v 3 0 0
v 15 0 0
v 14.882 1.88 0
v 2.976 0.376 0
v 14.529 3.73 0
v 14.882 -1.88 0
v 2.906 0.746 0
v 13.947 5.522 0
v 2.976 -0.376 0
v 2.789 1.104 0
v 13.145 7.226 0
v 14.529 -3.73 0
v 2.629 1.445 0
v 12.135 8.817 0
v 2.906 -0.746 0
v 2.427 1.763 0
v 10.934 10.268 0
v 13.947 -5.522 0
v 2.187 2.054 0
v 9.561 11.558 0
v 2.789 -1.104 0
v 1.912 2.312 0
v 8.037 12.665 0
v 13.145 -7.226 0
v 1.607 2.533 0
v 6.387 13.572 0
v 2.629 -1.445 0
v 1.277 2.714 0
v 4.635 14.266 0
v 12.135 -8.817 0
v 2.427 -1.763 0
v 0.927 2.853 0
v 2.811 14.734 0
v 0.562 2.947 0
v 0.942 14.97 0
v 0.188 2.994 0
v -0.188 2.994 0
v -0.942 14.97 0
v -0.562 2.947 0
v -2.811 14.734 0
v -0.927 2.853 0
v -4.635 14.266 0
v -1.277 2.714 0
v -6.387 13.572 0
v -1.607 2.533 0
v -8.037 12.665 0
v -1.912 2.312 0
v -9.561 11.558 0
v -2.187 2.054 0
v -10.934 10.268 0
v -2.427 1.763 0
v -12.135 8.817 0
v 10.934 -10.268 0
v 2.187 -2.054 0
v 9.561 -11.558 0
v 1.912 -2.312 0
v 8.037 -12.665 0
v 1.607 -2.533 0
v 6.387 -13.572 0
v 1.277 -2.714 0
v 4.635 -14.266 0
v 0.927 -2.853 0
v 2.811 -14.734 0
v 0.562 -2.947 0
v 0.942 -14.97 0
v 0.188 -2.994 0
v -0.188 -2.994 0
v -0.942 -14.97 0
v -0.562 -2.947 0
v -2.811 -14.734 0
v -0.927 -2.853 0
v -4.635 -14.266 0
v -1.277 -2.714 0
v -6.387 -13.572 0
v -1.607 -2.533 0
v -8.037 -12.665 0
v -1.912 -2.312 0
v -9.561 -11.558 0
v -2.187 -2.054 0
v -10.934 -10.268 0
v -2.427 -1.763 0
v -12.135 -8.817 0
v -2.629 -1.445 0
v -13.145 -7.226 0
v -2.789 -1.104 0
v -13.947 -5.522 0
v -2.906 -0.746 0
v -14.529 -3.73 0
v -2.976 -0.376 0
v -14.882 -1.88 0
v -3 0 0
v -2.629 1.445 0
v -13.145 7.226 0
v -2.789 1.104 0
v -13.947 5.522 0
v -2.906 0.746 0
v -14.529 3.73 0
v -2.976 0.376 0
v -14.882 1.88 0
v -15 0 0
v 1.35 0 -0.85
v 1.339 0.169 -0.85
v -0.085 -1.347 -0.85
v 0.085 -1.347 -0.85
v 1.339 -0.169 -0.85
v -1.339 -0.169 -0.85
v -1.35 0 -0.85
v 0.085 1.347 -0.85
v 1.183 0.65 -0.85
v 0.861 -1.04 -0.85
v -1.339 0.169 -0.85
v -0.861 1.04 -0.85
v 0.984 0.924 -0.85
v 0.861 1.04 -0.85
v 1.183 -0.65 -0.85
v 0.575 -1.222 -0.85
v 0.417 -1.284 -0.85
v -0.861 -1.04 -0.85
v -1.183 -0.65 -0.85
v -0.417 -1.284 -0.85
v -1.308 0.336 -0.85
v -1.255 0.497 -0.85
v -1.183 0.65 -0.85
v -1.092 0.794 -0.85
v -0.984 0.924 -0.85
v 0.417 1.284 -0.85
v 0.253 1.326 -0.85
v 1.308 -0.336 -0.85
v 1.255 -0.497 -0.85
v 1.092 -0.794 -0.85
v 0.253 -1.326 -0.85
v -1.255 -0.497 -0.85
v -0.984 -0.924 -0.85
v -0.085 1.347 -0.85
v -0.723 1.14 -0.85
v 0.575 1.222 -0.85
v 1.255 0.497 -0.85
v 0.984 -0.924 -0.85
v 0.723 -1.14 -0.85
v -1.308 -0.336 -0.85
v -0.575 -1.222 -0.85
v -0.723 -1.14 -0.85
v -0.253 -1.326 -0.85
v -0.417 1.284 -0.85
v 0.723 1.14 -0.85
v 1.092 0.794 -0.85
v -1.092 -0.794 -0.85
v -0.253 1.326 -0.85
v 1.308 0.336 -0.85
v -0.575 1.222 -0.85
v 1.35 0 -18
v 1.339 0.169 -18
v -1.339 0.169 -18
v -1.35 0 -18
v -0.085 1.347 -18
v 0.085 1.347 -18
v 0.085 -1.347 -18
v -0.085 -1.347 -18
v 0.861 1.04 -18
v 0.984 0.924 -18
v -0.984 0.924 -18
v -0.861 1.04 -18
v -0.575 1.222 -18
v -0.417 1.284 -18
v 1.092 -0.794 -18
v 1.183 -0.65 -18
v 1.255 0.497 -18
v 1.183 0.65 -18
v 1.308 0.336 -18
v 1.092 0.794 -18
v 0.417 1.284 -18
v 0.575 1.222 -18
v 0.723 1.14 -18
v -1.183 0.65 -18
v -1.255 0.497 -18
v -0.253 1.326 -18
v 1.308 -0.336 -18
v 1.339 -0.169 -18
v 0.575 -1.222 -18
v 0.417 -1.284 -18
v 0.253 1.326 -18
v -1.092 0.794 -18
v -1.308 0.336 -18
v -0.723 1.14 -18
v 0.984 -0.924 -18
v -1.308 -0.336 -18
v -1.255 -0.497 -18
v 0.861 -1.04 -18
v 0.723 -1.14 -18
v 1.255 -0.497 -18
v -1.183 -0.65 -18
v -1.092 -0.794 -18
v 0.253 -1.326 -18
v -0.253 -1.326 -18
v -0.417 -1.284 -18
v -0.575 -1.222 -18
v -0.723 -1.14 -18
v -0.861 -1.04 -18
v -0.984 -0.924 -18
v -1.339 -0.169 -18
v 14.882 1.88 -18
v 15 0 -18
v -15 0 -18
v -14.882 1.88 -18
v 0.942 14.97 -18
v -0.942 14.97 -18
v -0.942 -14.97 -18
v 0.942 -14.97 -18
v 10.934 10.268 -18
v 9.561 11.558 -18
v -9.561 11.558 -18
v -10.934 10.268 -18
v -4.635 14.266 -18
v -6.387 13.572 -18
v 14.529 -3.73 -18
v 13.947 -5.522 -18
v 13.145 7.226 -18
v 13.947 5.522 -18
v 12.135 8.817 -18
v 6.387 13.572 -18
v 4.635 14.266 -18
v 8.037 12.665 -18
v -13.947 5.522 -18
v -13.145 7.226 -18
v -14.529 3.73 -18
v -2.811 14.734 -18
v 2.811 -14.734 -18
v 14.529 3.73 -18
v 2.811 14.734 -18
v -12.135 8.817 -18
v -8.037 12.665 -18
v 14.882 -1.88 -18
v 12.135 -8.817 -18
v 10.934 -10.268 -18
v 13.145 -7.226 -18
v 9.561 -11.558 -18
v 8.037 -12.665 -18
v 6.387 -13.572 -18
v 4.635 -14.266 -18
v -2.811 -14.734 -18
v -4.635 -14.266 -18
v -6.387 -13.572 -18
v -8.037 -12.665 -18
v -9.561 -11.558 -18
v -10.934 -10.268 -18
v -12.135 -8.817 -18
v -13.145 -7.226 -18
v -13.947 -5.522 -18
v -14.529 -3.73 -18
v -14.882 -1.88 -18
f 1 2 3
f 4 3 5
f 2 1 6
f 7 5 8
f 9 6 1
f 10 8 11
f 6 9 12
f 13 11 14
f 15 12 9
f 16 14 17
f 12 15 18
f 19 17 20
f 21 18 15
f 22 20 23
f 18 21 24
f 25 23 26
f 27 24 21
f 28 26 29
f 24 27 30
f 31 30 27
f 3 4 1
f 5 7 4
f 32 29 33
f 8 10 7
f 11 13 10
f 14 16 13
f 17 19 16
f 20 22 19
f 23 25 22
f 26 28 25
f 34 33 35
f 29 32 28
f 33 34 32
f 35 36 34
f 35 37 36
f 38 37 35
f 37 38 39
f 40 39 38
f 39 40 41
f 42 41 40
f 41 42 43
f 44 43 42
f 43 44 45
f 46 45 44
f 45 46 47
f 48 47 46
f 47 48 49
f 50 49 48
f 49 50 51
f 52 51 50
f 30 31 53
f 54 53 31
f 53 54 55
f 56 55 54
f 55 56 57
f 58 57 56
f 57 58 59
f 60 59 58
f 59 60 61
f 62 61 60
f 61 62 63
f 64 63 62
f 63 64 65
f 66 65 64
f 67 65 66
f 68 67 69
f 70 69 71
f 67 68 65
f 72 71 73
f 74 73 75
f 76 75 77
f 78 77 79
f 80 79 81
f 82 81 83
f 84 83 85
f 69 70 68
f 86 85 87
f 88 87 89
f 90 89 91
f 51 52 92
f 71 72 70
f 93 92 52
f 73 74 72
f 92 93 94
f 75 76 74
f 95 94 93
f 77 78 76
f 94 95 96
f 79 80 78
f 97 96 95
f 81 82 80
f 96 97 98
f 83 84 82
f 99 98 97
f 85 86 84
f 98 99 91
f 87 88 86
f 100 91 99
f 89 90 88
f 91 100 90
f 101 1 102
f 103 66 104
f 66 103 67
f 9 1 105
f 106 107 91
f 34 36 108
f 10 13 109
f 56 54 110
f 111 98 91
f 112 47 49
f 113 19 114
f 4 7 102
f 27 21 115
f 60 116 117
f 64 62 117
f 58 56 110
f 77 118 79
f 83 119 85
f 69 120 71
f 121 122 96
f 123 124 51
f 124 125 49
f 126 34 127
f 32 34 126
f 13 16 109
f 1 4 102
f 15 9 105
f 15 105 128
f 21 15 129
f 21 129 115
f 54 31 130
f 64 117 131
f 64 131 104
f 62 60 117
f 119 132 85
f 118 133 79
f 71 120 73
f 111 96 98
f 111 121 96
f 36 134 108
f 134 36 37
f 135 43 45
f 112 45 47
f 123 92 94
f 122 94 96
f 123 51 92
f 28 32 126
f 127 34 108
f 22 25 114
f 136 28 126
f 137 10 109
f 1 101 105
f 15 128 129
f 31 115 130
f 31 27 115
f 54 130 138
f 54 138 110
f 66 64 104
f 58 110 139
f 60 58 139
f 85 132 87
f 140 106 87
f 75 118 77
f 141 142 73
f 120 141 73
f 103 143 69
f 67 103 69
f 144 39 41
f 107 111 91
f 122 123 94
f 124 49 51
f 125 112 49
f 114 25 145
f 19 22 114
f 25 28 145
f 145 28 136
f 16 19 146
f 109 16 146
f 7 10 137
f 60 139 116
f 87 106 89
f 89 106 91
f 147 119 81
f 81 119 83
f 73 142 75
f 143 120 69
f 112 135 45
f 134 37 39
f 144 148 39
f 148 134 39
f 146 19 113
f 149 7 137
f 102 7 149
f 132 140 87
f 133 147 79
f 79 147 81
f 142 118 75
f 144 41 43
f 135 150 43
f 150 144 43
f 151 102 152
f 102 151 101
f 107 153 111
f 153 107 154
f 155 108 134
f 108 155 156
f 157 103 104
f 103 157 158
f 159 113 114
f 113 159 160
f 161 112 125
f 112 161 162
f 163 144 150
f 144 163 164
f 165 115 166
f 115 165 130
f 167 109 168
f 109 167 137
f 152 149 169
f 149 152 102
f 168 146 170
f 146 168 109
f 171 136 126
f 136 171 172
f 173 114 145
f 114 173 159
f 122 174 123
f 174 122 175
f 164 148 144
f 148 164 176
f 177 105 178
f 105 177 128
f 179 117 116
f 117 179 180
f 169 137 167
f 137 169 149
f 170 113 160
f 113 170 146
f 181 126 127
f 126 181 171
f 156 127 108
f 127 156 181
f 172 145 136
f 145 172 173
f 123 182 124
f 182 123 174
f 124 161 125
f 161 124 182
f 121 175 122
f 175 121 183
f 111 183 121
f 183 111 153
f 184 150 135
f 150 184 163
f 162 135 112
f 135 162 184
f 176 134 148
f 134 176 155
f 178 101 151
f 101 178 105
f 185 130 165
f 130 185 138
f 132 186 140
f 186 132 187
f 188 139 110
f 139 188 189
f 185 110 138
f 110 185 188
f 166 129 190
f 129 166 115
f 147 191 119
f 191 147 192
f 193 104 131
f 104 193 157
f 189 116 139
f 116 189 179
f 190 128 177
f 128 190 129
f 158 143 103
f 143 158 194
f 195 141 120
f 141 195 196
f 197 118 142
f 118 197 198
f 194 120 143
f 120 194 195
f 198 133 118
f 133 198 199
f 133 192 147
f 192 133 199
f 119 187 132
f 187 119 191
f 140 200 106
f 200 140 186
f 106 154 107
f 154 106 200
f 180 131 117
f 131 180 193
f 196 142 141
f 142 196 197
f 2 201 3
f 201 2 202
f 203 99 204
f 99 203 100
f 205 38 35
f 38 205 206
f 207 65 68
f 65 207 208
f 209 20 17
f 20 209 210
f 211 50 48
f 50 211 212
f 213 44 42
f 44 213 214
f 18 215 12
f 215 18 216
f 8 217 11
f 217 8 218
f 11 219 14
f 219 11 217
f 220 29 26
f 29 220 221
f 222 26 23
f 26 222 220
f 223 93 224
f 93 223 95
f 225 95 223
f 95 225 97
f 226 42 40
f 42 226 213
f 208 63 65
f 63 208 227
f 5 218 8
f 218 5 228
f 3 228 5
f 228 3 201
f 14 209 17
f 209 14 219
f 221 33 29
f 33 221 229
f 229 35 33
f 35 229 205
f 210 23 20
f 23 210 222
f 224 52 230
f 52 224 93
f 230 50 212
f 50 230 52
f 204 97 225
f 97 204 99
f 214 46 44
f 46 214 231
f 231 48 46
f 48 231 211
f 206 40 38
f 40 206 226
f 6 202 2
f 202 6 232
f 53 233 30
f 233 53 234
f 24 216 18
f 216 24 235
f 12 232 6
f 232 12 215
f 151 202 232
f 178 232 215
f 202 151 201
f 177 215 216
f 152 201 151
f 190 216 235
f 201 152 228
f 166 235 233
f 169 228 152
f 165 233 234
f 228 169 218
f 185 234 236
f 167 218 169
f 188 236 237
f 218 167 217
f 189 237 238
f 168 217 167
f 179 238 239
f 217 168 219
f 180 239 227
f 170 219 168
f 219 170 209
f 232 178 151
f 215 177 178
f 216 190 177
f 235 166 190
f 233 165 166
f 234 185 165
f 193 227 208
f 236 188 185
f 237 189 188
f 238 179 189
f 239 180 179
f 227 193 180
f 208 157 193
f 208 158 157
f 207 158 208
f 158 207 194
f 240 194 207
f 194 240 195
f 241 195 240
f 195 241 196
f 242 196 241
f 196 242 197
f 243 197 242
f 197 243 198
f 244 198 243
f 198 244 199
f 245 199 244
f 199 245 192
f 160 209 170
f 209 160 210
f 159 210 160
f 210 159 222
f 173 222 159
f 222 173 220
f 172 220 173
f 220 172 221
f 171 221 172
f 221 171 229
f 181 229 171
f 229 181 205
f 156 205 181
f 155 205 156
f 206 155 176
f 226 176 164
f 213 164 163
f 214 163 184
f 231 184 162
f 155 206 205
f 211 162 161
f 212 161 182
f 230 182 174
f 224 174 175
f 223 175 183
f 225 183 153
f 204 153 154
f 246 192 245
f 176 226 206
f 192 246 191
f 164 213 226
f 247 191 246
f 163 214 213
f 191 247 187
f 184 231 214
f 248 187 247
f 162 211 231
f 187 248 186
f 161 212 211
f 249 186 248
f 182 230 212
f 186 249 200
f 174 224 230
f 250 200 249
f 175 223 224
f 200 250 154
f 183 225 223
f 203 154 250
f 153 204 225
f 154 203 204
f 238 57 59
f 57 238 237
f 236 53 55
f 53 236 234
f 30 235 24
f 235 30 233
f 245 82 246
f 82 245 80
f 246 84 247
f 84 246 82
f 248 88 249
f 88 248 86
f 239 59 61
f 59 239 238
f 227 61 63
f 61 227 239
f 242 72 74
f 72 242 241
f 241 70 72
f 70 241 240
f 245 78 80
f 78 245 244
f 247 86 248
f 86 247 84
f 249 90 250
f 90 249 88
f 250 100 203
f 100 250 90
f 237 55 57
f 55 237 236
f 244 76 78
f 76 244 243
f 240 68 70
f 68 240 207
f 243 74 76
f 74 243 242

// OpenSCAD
$fn = 50;

difference() {
	union() {
		translate(v = [0, 0, -18.0]) {
			cylinder(h = 18, r = 15.0);
		}
	}
	union() {
		translate(v = [0, 0, 0]) {
			rotate(a = [0, 0, 0]) {
				difference() {
					union() {
						translate(v = [0, 0, -21.0]) {
							cylinder(h = 21, r = 1.0);
						}
						translate(v = [0, 0, -0.85]) {
							cylinder(h = 0.85, r1 = 1.35, r2 = 3.0);
						}
						translate(v = [0, 0, -21.0]) {
							cylinder(h = 21, r = 1.35);
						}
						translate(v = [0, 0, -21.0]) {
							cylinder(h = 21, r = 1.0);
						}
					}
					union();
				}
			}
		}
	}
}
